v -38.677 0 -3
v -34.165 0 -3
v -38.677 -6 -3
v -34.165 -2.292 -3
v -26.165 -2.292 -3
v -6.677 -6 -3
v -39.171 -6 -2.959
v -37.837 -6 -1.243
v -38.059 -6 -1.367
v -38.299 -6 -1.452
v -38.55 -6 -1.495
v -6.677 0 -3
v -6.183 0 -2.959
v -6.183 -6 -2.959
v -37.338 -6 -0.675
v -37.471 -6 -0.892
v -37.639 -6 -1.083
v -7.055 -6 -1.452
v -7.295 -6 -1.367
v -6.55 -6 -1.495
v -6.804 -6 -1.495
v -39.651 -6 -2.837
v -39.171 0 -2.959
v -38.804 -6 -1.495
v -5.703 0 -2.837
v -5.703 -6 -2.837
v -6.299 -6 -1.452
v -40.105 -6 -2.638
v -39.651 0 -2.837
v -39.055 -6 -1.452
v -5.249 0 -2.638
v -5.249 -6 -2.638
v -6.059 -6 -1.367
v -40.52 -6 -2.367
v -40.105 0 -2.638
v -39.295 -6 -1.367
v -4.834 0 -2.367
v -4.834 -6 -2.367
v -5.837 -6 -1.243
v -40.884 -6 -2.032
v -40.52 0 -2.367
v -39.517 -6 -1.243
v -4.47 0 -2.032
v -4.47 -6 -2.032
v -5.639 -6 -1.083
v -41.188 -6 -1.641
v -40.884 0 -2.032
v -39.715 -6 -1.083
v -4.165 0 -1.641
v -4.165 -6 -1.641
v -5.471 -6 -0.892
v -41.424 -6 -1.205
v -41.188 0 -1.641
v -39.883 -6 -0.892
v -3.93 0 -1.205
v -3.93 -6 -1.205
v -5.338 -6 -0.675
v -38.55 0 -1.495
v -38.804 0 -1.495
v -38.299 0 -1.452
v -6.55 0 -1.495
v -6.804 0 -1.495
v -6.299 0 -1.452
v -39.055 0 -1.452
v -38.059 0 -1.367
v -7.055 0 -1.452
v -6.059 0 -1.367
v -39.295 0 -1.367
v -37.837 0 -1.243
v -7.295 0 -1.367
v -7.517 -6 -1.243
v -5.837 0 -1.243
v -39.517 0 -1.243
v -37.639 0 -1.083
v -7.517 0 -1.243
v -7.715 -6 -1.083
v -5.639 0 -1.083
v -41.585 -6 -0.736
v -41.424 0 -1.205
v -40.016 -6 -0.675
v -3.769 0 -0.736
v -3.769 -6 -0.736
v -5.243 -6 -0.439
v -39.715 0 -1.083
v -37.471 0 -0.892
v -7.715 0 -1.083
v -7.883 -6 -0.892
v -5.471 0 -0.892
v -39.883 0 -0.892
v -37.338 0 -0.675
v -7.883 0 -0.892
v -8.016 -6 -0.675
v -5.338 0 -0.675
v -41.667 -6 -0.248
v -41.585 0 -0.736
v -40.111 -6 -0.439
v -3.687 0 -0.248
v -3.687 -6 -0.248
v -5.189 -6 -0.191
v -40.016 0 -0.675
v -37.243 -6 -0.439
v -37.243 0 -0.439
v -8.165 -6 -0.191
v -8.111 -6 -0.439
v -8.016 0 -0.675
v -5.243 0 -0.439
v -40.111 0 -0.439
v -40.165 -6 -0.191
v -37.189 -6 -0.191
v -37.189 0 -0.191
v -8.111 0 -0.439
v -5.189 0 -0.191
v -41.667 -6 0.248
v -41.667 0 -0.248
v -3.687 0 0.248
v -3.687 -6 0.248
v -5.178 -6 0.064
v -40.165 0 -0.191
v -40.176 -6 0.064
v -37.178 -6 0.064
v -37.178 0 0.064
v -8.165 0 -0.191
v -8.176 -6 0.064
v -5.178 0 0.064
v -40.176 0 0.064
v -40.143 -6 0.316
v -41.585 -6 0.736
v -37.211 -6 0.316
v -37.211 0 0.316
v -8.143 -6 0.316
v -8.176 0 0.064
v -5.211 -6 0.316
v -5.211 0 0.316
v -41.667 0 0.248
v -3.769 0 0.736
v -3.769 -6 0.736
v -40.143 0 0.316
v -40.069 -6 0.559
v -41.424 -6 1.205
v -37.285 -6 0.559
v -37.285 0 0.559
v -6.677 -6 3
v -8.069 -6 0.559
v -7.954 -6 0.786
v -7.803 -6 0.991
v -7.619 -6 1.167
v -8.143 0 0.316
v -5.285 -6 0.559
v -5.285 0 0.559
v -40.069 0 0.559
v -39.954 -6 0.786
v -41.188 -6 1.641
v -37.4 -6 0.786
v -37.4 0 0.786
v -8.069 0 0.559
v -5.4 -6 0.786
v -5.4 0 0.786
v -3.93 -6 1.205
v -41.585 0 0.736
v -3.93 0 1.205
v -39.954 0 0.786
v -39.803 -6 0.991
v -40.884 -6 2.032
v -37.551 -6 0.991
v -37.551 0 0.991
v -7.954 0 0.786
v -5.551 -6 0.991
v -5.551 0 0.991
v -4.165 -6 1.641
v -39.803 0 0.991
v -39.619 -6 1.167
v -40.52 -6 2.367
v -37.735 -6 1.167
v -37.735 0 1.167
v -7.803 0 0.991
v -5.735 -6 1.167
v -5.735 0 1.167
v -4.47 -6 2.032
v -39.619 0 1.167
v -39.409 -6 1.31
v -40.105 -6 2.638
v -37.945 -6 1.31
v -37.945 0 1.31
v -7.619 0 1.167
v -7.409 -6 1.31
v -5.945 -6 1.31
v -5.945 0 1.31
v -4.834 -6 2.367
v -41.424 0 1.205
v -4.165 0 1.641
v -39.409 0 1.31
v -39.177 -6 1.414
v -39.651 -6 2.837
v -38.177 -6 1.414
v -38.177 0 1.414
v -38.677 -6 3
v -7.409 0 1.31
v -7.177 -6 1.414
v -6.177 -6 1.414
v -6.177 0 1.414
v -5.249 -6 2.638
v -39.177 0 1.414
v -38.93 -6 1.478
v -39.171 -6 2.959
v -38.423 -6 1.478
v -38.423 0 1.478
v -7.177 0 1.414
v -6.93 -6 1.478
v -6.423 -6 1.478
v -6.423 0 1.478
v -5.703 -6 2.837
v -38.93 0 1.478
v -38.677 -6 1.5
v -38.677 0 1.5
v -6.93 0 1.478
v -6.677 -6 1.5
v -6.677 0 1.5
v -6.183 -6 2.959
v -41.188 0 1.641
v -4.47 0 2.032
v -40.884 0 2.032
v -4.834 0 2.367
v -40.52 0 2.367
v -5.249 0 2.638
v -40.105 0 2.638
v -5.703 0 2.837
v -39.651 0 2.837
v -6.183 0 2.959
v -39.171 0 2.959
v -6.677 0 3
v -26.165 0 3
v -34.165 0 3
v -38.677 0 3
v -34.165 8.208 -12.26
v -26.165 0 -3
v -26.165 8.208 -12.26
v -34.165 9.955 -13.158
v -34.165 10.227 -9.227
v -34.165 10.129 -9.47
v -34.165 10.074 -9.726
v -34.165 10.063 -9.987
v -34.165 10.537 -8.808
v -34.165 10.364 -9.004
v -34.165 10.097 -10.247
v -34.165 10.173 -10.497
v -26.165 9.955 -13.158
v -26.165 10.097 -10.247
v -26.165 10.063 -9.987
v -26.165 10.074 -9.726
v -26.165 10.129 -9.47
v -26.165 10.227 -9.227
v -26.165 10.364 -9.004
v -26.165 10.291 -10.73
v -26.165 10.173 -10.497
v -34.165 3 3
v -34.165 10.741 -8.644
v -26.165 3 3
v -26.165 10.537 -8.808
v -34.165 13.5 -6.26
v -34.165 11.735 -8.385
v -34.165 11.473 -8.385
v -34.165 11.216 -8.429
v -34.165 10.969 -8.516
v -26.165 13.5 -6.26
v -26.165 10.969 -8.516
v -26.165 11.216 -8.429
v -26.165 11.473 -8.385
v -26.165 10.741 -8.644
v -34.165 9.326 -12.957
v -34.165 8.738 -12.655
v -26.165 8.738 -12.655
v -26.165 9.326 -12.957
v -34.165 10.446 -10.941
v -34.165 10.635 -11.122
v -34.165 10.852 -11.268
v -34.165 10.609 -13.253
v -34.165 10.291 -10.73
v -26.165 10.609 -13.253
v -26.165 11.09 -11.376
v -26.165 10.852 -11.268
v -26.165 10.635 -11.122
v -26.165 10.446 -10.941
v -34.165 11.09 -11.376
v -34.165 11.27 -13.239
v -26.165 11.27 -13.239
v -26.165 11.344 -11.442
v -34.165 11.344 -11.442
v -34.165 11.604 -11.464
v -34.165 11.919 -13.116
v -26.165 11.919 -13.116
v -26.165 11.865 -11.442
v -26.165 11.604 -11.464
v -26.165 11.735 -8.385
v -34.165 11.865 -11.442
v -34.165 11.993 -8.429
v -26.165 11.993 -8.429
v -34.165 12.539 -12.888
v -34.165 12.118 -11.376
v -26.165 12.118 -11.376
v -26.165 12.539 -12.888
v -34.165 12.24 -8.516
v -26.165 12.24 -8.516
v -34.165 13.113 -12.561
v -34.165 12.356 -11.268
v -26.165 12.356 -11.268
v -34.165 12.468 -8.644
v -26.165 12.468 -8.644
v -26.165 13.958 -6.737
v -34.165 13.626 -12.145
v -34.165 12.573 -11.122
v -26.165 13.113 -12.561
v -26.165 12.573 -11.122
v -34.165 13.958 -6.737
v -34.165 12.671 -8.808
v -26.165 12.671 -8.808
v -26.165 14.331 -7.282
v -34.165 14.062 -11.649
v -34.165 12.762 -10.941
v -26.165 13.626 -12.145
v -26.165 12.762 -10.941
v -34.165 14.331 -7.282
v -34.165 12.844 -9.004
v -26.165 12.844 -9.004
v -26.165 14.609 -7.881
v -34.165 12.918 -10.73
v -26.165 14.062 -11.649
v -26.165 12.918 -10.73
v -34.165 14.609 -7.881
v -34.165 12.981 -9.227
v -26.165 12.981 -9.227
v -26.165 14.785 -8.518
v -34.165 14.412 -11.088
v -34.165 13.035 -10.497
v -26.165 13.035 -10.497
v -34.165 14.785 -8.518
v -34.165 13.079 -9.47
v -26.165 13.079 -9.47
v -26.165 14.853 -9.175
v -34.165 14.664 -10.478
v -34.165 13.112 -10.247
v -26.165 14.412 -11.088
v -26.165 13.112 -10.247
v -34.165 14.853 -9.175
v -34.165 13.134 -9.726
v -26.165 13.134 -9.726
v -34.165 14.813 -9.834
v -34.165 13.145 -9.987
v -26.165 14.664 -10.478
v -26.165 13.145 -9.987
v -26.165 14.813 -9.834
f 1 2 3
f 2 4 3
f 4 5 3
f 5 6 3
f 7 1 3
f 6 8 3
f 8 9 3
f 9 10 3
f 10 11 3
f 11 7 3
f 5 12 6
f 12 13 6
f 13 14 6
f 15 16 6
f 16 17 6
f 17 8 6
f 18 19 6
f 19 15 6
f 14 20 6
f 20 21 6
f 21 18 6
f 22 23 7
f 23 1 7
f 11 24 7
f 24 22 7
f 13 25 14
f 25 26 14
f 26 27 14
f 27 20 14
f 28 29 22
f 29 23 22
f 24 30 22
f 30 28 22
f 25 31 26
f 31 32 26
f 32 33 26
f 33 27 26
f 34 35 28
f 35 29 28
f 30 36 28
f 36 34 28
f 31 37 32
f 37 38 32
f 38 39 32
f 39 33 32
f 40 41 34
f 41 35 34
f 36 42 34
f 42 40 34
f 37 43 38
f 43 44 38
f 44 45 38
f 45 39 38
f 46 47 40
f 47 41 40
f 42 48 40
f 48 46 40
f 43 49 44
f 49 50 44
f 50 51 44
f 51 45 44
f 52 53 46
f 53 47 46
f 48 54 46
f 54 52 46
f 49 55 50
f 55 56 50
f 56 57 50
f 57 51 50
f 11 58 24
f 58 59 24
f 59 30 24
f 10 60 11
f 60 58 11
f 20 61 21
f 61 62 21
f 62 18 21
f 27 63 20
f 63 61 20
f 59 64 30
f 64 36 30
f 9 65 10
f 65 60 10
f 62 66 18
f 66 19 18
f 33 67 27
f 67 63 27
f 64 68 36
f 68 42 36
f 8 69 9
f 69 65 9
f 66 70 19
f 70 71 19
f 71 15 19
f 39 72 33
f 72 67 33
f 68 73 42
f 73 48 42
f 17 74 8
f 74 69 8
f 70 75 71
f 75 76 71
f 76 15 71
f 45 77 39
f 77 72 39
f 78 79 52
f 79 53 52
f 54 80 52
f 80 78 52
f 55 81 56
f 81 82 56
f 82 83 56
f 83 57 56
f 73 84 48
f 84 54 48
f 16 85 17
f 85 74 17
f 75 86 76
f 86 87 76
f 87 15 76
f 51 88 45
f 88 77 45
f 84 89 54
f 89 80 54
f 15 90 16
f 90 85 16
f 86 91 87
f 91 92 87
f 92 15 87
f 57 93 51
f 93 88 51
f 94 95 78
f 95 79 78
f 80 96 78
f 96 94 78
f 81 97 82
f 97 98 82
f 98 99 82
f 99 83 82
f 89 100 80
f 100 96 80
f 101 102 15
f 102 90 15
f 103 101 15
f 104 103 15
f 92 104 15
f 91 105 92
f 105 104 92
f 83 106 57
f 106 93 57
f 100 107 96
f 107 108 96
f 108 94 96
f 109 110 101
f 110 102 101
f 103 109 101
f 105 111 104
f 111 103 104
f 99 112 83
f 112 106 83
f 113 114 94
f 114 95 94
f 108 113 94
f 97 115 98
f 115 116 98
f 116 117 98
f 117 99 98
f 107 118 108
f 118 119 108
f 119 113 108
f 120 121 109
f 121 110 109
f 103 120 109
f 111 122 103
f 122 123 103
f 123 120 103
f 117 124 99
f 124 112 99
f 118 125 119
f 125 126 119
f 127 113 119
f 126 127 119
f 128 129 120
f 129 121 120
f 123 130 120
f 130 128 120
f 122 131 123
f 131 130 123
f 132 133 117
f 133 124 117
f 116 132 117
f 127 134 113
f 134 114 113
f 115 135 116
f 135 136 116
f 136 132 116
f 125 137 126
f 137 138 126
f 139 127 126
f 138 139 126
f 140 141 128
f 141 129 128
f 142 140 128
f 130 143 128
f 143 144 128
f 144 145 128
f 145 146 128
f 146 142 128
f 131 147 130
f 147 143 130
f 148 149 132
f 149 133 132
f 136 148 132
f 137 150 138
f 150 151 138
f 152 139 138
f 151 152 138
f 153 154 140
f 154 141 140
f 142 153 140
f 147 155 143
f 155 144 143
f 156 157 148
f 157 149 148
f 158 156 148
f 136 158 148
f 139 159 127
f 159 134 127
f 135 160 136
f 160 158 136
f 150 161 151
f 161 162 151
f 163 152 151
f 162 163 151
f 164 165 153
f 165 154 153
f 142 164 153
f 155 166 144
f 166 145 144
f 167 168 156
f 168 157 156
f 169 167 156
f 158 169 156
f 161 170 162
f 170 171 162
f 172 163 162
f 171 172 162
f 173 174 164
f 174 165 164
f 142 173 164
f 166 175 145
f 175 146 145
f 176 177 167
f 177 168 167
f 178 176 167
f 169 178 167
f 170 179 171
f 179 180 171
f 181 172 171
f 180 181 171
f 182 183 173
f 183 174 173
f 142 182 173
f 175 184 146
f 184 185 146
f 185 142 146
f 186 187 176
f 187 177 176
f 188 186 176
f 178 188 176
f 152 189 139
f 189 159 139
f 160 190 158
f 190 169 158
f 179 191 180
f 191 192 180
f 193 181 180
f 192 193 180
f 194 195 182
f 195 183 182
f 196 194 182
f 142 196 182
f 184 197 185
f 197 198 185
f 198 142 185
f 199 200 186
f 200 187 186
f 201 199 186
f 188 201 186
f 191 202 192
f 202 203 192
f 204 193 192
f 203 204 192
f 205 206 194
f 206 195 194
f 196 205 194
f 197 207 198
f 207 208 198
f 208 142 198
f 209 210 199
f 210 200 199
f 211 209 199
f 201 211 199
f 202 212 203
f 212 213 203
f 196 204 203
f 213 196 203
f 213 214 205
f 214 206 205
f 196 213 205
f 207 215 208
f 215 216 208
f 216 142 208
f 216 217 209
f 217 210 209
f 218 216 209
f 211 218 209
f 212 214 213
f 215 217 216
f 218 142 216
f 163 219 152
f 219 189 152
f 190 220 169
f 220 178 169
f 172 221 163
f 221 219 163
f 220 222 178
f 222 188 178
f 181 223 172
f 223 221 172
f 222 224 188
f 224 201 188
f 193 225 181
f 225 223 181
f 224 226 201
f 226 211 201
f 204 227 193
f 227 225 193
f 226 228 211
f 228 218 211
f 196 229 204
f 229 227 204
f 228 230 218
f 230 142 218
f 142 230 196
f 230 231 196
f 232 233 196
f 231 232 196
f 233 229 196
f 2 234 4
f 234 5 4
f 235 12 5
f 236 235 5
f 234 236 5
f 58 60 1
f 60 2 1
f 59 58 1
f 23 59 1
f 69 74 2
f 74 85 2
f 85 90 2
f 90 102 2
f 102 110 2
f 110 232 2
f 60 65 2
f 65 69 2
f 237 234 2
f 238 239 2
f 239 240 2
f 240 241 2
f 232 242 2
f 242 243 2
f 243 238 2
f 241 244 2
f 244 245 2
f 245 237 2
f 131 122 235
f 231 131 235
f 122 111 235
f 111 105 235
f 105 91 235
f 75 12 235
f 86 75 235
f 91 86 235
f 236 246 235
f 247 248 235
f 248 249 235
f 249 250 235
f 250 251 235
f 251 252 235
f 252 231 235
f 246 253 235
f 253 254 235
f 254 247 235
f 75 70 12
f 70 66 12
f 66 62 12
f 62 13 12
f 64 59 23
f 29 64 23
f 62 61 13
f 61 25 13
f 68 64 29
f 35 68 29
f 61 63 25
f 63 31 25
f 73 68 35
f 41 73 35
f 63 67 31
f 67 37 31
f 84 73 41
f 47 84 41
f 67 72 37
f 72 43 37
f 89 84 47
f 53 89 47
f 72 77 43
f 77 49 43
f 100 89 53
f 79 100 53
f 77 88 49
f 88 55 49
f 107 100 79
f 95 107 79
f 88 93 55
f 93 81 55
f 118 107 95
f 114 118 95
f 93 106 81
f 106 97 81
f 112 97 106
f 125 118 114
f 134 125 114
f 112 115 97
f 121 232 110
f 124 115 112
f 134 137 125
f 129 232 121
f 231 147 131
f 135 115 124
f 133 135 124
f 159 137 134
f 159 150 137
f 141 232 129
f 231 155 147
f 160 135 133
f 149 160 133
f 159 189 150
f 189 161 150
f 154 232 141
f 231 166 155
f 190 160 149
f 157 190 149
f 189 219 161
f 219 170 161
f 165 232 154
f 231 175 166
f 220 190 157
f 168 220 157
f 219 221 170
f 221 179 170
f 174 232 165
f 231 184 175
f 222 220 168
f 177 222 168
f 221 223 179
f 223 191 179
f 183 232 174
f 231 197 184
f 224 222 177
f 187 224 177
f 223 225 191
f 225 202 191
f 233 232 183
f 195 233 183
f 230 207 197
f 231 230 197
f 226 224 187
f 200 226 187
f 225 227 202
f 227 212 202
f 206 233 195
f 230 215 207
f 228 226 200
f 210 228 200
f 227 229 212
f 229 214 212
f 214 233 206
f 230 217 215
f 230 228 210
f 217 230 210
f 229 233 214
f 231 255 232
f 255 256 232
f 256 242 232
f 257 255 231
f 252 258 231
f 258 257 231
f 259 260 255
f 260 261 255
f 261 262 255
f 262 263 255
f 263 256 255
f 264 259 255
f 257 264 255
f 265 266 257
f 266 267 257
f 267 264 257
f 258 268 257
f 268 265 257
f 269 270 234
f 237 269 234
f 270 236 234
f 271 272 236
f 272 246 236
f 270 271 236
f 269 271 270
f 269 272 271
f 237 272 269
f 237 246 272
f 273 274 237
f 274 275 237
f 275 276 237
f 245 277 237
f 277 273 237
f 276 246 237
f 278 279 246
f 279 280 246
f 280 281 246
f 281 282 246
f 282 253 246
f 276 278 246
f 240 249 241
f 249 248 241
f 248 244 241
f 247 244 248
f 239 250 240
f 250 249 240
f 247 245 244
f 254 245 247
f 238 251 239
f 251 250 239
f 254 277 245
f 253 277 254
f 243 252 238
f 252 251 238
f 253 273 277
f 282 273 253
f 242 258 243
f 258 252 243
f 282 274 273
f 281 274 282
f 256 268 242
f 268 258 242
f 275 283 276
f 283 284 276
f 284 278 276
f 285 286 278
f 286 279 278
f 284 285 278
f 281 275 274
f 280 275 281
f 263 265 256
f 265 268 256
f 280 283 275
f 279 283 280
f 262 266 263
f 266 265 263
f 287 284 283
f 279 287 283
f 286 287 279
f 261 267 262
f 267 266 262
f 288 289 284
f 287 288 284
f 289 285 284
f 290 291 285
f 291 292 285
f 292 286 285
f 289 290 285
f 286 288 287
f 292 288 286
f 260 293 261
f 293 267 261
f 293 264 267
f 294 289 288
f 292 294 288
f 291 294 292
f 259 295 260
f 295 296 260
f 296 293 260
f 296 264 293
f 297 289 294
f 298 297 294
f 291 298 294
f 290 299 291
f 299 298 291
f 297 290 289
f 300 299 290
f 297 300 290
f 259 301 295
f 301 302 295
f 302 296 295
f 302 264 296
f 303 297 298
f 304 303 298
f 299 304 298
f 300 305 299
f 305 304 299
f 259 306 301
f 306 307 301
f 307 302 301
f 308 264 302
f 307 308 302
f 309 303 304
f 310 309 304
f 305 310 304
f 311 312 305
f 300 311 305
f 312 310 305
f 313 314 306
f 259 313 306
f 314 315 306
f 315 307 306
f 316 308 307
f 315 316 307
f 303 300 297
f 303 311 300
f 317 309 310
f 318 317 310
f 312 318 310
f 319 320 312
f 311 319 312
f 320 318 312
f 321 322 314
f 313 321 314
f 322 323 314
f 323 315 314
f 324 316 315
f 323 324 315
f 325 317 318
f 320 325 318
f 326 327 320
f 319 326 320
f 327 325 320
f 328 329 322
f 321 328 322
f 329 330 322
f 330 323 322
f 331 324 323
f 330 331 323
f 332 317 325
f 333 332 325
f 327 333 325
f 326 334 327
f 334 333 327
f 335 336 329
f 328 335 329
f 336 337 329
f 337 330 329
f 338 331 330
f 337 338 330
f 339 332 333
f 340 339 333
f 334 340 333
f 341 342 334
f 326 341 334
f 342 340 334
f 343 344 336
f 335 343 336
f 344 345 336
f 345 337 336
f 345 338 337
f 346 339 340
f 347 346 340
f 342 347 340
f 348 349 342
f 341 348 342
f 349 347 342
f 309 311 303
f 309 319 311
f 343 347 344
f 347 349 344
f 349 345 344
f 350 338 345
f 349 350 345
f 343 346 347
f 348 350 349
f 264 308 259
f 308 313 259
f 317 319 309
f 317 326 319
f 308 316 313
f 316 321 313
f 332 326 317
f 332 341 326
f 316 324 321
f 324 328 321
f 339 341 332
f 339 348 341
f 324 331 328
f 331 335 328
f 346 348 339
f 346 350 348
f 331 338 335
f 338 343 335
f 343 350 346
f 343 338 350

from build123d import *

# Parameters (mm, degrees)
SKETCH_1_R          = 1.5
EXTRUDE_2_DEPTH     = 6
SKETCH_1_4_W        = 8
SKETCH_1_4_H        = 6
EXTRUDE_3_DEPTH     = 3
EXTRUDE_28_DEPTH    = 8
SKETCH_8_R          = 1.542364341
CUT_EXTRUDE_2_DEPTH = 12


with BuildPart() as part:
    # 草圖1 → 填料-伸長2 (new body)
    with BuildSketch(Plane(origin=(0, 0, 0), x_dir=(1, 0, 0), z_dir=(0, 1, 0))):
        with BuildLine():
            Line((-38.676968887, -3), (-6.676968887, -3))
            ThreePointArc((-6.676968887, -3), (-3.676968887, 0), (-6.676968887, 3))
            Line((-6.676968887, 3), (-38.676968887, 3))
            ThreePointArc((-38.676968887, 3), (-41.676968887, 0), (-38.676968887, -3))
        make_face()
        with Locations((-38.676968887, 0)):
            Circle(SKETCH_1_R, mode=Mode.SUBTRACT)
        with Locations((-6.676968887, 0)):
            Circle(SKETCH_1_R, mode=Mode.SUBTRACT)
    extrude(amount=-EXTRUDE_2_DEPTH)

    # 草圖1<4> → 填料-伸長3 (add)
    with BuildSketch(Plane(origin=(0, 0, 0), x_dir=(1, 0, 0), z_dir=(0, 1, 0))):
        with Locations((-30.164668836, 0)):
            Rectangle(SKETCH_1_4_W, SKETCH_1_4_H)
    extrude(amount=EXTRUDE_3_DEPTH)

    # 草圖3 → 填料-伸長28 (add)
    with BuildSketch(Plane(origin=(-26.164668836, 0, 0), x_dir=(0, 0, -1), z_dir=(1, 0, 0))):
        with BuildLine():
            Line((3, -2.291502622), (12.260129589, 8.208497378))
            ThreePointArc((12.260129589, 8.208497378), (11.9058809, 13.854248689), (6.260129589, 13.5))
            Line((6.260129589, 13.5), (-3, 3))
            Line((-3, 3), (3, -2.291502622))
        make_face()
    extrude(amount=-EXTRUDE_28_DEPTH)

    # 草圖8 → 除料-伸長2 (cut)
    with BuildSketch(Plane(origin=(-26.164668836, 0, 0), x_dir=(0, 0, -1), z_dir=(1, 0, 0))):
        with Locations((9.921567416, 11.604248689)):
            Circle(SKETCH_8_R)
    extrude(amount=-CUT_EXTRUDE_2_DEPTH, mode=Mode.SUBTRACT)


solid = part.part
